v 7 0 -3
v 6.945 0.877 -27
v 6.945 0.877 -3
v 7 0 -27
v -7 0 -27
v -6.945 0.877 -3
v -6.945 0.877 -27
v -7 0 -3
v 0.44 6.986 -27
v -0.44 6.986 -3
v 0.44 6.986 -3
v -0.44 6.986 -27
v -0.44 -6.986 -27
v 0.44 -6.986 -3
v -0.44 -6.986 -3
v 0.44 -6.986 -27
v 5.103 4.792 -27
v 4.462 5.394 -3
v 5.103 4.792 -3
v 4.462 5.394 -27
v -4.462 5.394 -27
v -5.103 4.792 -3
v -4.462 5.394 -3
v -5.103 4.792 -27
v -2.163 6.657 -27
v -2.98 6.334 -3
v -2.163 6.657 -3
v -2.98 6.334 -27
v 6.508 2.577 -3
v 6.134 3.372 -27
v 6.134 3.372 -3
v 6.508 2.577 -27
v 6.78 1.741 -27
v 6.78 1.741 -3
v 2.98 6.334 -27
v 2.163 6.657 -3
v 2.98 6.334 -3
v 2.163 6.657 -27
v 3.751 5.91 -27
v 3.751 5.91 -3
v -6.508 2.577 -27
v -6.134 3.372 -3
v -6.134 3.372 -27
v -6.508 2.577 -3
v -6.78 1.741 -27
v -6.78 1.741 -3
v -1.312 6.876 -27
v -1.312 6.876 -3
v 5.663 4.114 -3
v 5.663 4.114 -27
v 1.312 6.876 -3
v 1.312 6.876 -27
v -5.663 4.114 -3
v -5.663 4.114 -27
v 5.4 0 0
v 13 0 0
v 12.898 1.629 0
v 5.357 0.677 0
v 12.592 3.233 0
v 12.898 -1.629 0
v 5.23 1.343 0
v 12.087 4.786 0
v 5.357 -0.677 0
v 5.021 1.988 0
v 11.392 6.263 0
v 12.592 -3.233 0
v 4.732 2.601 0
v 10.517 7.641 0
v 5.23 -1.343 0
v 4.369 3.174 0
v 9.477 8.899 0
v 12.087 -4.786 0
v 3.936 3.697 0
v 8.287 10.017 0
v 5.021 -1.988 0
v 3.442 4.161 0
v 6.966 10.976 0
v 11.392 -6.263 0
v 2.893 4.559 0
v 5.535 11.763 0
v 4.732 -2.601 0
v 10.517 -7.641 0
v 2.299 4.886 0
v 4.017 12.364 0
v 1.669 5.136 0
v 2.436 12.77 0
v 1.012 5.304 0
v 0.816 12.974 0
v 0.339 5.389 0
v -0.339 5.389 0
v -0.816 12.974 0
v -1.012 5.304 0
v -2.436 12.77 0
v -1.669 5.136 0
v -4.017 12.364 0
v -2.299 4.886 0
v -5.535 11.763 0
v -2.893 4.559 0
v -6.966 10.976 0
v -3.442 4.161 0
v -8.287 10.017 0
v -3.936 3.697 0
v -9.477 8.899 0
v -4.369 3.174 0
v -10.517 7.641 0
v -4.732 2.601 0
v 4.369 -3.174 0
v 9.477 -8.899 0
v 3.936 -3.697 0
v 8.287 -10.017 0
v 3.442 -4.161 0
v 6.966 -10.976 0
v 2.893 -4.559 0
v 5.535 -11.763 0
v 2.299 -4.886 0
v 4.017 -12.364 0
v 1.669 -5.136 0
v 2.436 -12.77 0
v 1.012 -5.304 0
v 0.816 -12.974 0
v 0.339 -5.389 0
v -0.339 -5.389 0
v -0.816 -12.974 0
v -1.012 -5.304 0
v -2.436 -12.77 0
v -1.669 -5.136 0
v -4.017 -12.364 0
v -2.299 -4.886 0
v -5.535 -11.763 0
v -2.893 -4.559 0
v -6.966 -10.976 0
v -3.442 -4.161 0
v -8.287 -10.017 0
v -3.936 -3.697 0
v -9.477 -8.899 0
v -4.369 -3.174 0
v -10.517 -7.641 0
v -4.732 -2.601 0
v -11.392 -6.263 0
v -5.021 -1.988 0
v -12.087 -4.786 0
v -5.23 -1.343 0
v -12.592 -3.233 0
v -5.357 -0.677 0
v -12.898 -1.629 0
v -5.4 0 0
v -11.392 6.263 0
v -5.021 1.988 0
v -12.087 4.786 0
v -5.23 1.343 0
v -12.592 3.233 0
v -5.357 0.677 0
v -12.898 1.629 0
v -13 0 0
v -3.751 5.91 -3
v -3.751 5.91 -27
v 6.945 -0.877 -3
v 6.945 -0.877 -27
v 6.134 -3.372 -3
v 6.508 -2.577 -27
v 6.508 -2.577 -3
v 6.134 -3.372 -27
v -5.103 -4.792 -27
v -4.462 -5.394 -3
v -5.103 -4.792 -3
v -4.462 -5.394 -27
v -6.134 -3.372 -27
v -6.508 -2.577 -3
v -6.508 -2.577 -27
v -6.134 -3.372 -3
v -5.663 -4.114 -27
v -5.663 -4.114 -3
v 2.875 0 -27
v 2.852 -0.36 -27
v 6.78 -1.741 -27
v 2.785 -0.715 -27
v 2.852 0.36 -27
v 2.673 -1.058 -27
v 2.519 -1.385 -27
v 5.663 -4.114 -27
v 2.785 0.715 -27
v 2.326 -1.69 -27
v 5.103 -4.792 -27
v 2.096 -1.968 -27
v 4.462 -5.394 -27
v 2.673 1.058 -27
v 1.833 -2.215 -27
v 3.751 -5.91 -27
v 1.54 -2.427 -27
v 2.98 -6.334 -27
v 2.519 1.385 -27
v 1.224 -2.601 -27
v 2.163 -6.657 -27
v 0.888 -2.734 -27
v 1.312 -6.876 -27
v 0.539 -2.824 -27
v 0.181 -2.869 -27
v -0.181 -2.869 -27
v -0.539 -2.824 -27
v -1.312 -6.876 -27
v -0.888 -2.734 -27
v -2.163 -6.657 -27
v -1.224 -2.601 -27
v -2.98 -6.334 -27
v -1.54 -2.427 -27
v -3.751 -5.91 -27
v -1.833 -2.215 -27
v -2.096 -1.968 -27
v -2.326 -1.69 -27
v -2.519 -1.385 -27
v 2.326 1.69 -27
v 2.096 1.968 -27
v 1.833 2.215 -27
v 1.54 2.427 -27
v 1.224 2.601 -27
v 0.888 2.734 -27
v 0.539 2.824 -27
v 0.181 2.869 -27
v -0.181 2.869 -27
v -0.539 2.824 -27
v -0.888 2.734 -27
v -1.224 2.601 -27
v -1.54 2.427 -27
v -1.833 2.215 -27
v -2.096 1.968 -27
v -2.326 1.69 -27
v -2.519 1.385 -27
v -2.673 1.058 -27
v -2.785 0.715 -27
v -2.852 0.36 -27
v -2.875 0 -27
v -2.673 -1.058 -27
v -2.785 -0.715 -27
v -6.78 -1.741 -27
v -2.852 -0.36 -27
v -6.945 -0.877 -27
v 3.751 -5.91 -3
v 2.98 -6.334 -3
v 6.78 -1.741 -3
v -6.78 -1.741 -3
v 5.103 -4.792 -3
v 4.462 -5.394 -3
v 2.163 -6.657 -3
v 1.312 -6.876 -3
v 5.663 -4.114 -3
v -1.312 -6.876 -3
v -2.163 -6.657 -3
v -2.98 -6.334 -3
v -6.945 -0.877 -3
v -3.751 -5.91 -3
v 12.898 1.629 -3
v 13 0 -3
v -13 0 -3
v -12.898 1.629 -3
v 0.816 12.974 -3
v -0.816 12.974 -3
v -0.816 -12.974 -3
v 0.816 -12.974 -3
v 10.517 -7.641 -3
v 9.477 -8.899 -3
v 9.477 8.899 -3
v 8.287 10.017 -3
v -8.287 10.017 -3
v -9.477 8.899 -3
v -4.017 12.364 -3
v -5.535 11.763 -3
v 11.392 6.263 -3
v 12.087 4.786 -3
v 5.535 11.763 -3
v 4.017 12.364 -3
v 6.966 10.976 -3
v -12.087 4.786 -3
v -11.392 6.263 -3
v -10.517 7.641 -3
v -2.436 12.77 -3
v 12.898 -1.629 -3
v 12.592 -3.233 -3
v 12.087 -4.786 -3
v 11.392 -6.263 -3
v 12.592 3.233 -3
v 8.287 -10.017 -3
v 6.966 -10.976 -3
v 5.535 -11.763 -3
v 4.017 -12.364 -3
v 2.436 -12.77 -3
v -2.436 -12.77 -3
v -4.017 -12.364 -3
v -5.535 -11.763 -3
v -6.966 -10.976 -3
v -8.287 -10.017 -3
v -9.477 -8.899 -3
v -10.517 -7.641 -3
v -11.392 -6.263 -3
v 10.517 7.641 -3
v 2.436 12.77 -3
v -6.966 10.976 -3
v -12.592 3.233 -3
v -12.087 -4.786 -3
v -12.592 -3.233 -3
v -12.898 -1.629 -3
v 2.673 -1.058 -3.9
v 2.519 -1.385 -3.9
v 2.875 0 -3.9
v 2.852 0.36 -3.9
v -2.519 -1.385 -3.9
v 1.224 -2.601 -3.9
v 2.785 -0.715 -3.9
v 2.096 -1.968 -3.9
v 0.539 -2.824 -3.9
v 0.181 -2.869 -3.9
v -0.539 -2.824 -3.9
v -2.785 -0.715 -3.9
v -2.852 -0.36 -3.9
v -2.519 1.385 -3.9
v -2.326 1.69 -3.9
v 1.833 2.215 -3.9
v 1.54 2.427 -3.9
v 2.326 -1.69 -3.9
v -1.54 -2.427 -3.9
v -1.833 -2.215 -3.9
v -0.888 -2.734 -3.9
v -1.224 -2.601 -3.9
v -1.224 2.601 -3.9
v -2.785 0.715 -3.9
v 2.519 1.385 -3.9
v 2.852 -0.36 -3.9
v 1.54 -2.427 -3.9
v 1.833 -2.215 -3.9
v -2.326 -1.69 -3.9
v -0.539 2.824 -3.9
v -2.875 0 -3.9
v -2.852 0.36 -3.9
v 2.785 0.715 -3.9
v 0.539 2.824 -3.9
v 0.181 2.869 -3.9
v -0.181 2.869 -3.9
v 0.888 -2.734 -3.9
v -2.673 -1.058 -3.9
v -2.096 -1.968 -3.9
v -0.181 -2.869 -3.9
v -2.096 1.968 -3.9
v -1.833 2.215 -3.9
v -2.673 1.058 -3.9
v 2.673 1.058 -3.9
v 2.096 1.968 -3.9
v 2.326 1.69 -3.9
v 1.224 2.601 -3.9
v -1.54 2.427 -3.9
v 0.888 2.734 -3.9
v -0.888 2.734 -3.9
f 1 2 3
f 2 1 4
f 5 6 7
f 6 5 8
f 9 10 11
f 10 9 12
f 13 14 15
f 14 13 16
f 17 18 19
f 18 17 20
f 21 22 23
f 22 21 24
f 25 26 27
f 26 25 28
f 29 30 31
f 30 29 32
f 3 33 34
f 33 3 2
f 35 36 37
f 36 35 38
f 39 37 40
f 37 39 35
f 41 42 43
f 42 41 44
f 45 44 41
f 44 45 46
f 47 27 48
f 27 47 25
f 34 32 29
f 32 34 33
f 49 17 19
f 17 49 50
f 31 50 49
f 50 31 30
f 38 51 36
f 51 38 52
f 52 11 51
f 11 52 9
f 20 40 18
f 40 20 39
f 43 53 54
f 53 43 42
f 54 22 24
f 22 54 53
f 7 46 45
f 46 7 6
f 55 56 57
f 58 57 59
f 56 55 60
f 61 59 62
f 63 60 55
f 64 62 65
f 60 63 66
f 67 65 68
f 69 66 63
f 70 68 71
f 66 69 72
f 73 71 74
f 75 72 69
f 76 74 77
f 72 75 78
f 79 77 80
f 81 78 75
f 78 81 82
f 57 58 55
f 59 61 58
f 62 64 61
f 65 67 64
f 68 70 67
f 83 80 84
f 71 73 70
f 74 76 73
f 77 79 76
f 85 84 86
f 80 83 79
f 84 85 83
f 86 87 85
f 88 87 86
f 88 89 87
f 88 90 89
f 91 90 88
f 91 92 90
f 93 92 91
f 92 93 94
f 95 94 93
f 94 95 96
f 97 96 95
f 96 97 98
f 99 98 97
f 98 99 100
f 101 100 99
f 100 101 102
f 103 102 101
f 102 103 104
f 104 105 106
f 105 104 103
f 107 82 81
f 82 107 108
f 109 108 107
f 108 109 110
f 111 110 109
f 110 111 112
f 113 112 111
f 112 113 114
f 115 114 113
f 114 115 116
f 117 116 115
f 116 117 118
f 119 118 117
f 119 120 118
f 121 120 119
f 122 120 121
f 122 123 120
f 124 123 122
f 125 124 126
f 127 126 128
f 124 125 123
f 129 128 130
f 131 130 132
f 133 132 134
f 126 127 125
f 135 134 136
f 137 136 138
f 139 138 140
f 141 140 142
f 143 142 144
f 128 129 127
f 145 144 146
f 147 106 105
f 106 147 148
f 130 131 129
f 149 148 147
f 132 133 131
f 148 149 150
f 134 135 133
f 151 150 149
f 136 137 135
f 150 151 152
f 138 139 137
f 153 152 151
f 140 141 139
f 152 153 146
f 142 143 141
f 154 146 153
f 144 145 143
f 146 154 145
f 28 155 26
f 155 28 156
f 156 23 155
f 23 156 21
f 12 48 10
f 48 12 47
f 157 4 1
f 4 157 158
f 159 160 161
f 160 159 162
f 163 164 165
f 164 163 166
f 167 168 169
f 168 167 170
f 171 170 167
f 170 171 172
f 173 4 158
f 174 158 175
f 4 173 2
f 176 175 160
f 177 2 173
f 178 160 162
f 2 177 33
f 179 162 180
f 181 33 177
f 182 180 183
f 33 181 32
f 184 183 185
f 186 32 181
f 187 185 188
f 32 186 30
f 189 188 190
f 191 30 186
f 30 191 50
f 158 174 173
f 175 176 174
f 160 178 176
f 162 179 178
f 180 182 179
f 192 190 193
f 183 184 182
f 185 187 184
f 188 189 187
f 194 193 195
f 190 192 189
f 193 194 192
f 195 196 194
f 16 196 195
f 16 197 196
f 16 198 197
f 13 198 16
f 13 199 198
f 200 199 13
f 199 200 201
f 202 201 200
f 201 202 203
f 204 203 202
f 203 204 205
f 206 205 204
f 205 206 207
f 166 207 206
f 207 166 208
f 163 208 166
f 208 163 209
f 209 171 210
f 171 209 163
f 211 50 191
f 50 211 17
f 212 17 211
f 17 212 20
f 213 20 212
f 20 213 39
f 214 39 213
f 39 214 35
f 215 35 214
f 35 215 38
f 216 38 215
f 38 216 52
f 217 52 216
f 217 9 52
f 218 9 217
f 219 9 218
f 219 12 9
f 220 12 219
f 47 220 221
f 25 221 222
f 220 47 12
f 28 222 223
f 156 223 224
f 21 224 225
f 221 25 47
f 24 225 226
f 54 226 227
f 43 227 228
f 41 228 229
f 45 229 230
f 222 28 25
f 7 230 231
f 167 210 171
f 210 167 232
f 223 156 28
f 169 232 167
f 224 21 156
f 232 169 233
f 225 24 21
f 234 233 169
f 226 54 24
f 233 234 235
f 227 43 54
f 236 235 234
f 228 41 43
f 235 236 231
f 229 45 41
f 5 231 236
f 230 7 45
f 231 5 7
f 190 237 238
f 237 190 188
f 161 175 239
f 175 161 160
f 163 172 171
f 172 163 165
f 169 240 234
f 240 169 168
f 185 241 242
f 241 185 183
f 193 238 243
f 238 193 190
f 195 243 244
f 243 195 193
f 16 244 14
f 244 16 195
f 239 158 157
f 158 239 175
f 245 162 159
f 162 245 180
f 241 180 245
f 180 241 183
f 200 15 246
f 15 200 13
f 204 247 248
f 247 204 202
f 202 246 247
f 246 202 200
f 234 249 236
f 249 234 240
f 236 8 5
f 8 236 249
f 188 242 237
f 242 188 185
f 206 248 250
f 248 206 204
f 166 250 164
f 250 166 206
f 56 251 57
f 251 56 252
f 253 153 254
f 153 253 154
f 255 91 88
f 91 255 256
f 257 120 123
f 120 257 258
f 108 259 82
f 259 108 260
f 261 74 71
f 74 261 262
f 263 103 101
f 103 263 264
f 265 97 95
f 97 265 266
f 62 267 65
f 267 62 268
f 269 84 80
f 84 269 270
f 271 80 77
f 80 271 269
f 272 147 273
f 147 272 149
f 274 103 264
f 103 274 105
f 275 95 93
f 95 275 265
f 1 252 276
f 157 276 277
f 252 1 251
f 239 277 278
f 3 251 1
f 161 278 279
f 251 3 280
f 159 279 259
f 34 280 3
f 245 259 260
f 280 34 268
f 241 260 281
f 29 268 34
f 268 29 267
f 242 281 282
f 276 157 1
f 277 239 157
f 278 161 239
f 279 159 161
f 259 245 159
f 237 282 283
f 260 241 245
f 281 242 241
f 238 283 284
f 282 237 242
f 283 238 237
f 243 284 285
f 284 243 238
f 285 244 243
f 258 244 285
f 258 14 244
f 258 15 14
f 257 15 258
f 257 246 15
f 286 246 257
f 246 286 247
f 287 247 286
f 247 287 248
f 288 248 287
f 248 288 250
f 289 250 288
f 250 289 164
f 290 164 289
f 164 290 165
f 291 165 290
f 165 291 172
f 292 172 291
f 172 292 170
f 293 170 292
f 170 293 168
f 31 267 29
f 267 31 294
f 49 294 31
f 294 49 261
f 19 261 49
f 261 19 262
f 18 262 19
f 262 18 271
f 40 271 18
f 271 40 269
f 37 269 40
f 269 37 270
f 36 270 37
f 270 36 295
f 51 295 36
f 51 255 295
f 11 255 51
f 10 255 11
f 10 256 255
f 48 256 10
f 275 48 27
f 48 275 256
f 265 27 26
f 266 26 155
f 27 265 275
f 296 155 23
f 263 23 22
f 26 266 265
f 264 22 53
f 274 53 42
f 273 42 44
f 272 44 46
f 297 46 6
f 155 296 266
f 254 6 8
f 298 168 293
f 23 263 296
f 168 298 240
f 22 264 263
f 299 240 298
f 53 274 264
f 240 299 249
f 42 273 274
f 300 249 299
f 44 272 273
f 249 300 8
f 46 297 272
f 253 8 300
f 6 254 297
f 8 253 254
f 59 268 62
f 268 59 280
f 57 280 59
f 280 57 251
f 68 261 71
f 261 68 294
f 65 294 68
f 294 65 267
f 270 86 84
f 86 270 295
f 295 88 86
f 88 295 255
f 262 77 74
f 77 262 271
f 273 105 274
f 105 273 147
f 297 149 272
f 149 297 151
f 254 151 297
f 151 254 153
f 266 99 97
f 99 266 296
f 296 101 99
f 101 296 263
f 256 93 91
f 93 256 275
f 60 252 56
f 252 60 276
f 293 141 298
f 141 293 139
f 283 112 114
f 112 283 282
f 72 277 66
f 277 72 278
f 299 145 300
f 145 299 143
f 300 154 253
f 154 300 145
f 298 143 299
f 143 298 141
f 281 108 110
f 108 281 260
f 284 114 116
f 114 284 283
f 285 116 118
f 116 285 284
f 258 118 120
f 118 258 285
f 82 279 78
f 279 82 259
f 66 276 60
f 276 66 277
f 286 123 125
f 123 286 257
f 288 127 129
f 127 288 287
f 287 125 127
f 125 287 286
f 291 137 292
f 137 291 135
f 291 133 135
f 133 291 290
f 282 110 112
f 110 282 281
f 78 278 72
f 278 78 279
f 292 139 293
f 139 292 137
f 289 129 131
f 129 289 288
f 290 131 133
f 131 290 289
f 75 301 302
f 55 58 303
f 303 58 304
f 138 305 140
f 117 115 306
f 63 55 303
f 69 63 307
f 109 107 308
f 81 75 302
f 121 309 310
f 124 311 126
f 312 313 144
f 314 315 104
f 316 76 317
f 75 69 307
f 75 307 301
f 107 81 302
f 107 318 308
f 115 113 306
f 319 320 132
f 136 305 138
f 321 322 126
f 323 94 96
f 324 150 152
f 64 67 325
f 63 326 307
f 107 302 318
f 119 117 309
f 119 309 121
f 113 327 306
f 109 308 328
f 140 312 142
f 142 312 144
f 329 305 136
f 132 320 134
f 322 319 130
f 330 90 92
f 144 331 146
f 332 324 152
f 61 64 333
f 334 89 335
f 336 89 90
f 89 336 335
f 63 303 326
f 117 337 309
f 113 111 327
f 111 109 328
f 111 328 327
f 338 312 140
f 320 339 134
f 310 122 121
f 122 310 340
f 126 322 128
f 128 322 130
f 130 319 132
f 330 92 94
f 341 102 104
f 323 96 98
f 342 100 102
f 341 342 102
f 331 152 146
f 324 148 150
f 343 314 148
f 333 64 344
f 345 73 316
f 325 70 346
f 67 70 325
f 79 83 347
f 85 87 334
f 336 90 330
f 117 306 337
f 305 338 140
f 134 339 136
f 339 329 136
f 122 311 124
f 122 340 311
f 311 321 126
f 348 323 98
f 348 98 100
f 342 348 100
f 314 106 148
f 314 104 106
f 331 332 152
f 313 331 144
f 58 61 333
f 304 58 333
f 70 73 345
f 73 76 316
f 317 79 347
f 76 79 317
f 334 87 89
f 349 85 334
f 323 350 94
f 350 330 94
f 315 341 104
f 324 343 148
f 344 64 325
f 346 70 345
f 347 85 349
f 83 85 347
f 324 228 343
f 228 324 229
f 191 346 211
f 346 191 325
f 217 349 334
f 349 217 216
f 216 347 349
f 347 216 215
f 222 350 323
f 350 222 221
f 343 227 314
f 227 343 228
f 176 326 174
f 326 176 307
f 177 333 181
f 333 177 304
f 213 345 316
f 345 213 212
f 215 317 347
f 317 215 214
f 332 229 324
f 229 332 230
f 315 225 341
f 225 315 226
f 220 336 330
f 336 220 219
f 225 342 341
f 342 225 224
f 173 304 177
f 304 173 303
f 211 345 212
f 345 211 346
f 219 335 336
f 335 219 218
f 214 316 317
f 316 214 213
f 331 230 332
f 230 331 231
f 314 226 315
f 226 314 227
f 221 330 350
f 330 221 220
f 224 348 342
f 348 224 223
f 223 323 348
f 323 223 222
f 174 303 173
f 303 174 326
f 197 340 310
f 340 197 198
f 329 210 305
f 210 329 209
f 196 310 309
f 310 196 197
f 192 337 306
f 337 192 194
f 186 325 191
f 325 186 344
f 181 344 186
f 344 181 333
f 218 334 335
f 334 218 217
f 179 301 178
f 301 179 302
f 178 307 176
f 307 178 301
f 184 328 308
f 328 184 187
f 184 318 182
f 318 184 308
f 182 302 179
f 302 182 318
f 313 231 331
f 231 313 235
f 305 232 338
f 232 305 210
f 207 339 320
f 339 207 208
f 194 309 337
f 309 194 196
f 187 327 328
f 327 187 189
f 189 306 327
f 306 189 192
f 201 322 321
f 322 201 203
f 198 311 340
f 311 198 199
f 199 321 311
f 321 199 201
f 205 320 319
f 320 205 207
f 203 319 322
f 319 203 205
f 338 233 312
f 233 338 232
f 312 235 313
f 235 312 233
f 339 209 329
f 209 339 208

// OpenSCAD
$fn = 50;


difference() {
	union() {
		translate(v = [0, 0, -27.0000000000]) {
			cylinder(h = 27, r = 7.0000000000);
		}
		translate(v = [0, 0, -3.0000000000]) {
			cylinder(h = 3, r = 13.0000000000);
		}
	}
	union() {
		translate(v = [0, 0, 0]) {
			rotate(a = [0, 0, 0]) {
				difference() {
					union() {
						#translate(v = [0, 0, -27.0000000000]) {
							cylinder(h = 27, r = 2.6000000000);
						}
						#translate(v = [0, 0, -3.9000000000]) {
							cylinder(h = 3.9000000000, r1 = 2.8750000000, r2 = 5.4000000000);
						}
						#translate(v = [0, 0, -27.0000000000]) {
							cylinder(h = 27, r = 2.8750000000);
						}
						#translate(v = [0, 0, -27.0000000000]) {
							cylinder(h = 27, r = 2.6000000000);
						}
					}
					union();
				}
			}
		}
	}
}
